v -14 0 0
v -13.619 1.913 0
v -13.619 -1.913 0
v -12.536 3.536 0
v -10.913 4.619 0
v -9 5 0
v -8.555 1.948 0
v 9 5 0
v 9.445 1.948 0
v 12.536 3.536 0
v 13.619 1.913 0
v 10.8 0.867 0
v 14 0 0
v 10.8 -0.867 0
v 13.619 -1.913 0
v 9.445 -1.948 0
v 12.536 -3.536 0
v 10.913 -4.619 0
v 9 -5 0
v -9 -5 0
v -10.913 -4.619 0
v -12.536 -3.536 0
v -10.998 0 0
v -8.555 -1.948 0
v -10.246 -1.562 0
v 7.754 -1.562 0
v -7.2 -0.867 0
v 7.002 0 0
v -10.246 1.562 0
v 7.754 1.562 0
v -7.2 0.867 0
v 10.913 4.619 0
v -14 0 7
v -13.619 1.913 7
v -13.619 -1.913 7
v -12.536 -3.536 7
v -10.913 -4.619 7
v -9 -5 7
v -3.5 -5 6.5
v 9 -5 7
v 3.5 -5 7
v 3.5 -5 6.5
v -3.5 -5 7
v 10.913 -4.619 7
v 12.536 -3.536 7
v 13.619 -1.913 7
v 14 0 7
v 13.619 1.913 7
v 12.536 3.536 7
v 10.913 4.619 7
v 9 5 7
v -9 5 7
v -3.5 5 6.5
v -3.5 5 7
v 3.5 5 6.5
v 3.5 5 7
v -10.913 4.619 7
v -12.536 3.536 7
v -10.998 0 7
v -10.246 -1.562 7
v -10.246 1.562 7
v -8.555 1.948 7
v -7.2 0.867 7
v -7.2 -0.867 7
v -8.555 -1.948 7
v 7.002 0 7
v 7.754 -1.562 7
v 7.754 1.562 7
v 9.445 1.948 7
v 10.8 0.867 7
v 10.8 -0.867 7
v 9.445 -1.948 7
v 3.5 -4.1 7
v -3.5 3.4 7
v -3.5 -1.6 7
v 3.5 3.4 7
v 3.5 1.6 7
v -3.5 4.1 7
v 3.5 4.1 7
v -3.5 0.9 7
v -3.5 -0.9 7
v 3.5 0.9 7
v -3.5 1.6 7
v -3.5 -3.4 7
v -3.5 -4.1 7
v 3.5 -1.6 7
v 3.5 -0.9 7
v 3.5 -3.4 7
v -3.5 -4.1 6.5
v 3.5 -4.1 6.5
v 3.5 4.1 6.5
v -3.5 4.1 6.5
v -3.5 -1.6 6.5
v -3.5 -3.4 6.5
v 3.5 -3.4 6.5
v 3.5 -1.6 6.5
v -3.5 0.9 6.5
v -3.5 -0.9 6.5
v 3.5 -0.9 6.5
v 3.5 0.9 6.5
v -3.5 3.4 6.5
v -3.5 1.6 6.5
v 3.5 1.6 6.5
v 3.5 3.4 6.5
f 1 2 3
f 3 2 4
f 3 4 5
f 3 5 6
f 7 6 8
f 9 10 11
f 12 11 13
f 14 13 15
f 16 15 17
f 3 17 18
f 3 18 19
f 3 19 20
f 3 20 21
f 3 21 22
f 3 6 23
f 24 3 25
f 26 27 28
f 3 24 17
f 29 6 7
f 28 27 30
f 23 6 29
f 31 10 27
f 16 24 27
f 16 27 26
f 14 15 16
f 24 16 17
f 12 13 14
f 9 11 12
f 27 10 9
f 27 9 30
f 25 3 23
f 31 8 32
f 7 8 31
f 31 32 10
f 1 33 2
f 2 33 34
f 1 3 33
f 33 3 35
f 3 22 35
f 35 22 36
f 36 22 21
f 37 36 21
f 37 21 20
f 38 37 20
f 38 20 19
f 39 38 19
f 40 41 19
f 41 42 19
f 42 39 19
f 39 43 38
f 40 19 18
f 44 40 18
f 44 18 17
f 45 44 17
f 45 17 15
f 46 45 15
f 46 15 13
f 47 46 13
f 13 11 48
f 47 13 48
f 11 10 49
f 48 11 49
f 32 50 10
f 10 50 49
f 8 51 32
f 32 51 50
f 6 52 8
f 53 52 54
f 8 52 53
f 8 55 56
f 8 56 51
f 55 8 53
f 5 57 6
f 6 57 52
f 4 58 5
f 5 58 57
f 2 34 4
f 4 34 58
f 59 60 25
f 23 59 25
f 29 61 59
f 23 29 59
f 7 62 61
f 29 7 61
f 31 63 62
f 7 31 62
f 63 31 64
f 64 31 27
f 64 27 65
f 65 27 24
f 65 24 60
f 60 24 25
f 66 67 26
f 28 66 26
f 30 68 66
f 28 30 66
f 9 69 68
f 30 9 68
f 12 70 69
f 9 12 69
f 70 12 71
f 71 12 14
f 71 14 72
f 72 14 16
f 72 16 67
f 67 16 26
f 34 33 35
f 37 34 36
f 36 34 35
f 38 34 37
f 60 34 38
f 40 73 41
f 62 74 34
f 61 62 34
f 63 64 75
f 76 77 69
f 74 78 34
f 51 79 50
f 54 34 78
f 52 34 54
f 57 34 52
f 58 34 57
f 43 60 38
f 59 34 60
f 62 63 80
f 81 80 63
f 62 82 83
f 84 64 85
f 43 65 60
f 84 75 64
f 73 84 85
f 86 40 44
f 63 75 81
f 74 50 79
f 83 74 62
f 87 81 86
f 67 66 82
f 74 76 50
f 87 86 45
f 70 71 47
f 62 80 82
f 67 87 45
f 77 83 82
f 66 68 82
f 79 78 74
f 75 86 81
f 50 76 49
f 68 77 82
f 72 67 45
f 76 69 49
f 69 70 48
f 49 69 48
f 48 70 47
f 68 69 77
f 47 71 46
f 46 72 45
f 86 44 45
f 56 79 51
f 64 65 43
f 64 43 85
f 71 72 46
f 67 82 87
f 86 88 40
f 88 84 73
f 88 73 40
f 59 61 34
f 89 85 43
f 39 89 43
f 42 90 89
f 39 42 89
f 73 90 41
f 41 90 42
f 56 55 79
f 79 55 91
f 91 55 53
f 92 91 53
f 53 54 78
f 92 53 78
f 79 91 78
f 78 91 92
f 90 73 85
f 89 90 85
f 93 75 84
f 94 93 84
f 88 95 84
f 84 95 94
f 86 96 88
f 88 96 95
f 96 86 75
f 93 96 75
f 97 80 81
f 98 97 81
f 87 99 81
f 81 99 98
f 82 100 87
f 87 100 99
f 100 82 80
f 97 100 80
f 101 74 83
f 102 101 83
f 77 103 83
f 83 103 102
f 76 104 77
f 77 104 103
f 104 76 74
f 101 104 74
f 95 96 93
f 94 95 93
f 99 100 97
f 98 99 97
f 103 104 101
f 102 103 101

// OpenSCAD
// file: prusafunc.scad
// miPrinter
// https://github.com/3DprintFIT/miPrinter
// Functions used in many files from Prusa Mendel
// GNU GPL v3
// Josef Průša
// nophead

module nut(d,h,horizontal=true) {
	cornerdiameter =  (d / 2) / cos (180 / 6);
	cylinder(h = h, r = cornerdiameter, $fn = 6);
	if(horizontal) {
		for(i = [1:6]){
			rotate([0,0,60*i]) translate([-cornerdiameter-0.2,0,0]) rotate([0,0,-45]) cube(size = [2,2,h]);
		}
	}
}

// Based on nophead research
module polyhole(d,h) {
	n = max(round(2 * d),3);
	rotate([0,0,180])
		cylinder(h = h, r = (d / 2) / cos (180 / n), $fn = n);
}

module roundcorner(diameter) {
	difference() {
		cube(size = [diameter,diameter,99], center = false);
		translate(v = [diameter, diameter, 0]) cylinder(h = 100, r=diameter, center=true);
	}
}
// file: configuration.scad
// miPrinter
// https://github.com/3DprintFIT/miPrinter
// Configuration
// GNU GPL v3
// Miro Hrončok

print = 200;
wall = 5;
rod = 8;
minirod = 3;
motorw = 43;
motorh = 47;
inf = 500;
bearingd = 7+1; // including 1 washer
bearingr = 11+0.5; // including clearance
layer = 0.3;
bigwasher = 30;

// RAIL: http://eshop.prodance.cz/fotocache/add/620612_1.jpg
rail = 10; // outside
raildepth = 15;

// Prusa parts
use <prusafunc.scad>;

linear = true;
lme8uu=false;
m8_diameter = 9;
m8_nut_diameter = 14.1;
m4_nut_diameter = 9;
m3_diameter = 3.6;
m3_nut_diameter = 5.3;
thin_wall = 3;
xend_width = 32;
// main file
// miPrinter
// https://github.com/3DprintFIT/miPrinter
// Belt clamp
// GNU GPL v3
// Josef Průša

include <configuration.scad>

module beltclamp(){
difference(){
	union(0){
translate(v = [0,0,3.5]) cube([18,10,7], center=true);
		translate(v = [-9, 0, 0]) cylinder(r=5,h=7);
		translate(v = [9, 0, 0]) cylinder(r=5,h=7);
}
translate(v = [-9, 0, -1])polyhole(m3_diameter, 12);
translate(v = [9, 0, -1]) polyhole(m3_diameter, 12);
translate(v = [0,0,6.5]){
translate(v = [0,0,5])cube(size = [7, 1.8, 10], center = true);
translate(v = [0,2.5,5])cube(size = [7, 1.8, 10], center = true);
translate(v = [0,5,5])cube(size = [7, 1.8, 10], center = true);
translate(v = [0,-2.5,5])cube(size = [7, 1.8, 10], center = true);
translate(v = [0,-5,5])cube(size = [7, 1.8, 10], center = true);
}
}
}
beltclamp();
